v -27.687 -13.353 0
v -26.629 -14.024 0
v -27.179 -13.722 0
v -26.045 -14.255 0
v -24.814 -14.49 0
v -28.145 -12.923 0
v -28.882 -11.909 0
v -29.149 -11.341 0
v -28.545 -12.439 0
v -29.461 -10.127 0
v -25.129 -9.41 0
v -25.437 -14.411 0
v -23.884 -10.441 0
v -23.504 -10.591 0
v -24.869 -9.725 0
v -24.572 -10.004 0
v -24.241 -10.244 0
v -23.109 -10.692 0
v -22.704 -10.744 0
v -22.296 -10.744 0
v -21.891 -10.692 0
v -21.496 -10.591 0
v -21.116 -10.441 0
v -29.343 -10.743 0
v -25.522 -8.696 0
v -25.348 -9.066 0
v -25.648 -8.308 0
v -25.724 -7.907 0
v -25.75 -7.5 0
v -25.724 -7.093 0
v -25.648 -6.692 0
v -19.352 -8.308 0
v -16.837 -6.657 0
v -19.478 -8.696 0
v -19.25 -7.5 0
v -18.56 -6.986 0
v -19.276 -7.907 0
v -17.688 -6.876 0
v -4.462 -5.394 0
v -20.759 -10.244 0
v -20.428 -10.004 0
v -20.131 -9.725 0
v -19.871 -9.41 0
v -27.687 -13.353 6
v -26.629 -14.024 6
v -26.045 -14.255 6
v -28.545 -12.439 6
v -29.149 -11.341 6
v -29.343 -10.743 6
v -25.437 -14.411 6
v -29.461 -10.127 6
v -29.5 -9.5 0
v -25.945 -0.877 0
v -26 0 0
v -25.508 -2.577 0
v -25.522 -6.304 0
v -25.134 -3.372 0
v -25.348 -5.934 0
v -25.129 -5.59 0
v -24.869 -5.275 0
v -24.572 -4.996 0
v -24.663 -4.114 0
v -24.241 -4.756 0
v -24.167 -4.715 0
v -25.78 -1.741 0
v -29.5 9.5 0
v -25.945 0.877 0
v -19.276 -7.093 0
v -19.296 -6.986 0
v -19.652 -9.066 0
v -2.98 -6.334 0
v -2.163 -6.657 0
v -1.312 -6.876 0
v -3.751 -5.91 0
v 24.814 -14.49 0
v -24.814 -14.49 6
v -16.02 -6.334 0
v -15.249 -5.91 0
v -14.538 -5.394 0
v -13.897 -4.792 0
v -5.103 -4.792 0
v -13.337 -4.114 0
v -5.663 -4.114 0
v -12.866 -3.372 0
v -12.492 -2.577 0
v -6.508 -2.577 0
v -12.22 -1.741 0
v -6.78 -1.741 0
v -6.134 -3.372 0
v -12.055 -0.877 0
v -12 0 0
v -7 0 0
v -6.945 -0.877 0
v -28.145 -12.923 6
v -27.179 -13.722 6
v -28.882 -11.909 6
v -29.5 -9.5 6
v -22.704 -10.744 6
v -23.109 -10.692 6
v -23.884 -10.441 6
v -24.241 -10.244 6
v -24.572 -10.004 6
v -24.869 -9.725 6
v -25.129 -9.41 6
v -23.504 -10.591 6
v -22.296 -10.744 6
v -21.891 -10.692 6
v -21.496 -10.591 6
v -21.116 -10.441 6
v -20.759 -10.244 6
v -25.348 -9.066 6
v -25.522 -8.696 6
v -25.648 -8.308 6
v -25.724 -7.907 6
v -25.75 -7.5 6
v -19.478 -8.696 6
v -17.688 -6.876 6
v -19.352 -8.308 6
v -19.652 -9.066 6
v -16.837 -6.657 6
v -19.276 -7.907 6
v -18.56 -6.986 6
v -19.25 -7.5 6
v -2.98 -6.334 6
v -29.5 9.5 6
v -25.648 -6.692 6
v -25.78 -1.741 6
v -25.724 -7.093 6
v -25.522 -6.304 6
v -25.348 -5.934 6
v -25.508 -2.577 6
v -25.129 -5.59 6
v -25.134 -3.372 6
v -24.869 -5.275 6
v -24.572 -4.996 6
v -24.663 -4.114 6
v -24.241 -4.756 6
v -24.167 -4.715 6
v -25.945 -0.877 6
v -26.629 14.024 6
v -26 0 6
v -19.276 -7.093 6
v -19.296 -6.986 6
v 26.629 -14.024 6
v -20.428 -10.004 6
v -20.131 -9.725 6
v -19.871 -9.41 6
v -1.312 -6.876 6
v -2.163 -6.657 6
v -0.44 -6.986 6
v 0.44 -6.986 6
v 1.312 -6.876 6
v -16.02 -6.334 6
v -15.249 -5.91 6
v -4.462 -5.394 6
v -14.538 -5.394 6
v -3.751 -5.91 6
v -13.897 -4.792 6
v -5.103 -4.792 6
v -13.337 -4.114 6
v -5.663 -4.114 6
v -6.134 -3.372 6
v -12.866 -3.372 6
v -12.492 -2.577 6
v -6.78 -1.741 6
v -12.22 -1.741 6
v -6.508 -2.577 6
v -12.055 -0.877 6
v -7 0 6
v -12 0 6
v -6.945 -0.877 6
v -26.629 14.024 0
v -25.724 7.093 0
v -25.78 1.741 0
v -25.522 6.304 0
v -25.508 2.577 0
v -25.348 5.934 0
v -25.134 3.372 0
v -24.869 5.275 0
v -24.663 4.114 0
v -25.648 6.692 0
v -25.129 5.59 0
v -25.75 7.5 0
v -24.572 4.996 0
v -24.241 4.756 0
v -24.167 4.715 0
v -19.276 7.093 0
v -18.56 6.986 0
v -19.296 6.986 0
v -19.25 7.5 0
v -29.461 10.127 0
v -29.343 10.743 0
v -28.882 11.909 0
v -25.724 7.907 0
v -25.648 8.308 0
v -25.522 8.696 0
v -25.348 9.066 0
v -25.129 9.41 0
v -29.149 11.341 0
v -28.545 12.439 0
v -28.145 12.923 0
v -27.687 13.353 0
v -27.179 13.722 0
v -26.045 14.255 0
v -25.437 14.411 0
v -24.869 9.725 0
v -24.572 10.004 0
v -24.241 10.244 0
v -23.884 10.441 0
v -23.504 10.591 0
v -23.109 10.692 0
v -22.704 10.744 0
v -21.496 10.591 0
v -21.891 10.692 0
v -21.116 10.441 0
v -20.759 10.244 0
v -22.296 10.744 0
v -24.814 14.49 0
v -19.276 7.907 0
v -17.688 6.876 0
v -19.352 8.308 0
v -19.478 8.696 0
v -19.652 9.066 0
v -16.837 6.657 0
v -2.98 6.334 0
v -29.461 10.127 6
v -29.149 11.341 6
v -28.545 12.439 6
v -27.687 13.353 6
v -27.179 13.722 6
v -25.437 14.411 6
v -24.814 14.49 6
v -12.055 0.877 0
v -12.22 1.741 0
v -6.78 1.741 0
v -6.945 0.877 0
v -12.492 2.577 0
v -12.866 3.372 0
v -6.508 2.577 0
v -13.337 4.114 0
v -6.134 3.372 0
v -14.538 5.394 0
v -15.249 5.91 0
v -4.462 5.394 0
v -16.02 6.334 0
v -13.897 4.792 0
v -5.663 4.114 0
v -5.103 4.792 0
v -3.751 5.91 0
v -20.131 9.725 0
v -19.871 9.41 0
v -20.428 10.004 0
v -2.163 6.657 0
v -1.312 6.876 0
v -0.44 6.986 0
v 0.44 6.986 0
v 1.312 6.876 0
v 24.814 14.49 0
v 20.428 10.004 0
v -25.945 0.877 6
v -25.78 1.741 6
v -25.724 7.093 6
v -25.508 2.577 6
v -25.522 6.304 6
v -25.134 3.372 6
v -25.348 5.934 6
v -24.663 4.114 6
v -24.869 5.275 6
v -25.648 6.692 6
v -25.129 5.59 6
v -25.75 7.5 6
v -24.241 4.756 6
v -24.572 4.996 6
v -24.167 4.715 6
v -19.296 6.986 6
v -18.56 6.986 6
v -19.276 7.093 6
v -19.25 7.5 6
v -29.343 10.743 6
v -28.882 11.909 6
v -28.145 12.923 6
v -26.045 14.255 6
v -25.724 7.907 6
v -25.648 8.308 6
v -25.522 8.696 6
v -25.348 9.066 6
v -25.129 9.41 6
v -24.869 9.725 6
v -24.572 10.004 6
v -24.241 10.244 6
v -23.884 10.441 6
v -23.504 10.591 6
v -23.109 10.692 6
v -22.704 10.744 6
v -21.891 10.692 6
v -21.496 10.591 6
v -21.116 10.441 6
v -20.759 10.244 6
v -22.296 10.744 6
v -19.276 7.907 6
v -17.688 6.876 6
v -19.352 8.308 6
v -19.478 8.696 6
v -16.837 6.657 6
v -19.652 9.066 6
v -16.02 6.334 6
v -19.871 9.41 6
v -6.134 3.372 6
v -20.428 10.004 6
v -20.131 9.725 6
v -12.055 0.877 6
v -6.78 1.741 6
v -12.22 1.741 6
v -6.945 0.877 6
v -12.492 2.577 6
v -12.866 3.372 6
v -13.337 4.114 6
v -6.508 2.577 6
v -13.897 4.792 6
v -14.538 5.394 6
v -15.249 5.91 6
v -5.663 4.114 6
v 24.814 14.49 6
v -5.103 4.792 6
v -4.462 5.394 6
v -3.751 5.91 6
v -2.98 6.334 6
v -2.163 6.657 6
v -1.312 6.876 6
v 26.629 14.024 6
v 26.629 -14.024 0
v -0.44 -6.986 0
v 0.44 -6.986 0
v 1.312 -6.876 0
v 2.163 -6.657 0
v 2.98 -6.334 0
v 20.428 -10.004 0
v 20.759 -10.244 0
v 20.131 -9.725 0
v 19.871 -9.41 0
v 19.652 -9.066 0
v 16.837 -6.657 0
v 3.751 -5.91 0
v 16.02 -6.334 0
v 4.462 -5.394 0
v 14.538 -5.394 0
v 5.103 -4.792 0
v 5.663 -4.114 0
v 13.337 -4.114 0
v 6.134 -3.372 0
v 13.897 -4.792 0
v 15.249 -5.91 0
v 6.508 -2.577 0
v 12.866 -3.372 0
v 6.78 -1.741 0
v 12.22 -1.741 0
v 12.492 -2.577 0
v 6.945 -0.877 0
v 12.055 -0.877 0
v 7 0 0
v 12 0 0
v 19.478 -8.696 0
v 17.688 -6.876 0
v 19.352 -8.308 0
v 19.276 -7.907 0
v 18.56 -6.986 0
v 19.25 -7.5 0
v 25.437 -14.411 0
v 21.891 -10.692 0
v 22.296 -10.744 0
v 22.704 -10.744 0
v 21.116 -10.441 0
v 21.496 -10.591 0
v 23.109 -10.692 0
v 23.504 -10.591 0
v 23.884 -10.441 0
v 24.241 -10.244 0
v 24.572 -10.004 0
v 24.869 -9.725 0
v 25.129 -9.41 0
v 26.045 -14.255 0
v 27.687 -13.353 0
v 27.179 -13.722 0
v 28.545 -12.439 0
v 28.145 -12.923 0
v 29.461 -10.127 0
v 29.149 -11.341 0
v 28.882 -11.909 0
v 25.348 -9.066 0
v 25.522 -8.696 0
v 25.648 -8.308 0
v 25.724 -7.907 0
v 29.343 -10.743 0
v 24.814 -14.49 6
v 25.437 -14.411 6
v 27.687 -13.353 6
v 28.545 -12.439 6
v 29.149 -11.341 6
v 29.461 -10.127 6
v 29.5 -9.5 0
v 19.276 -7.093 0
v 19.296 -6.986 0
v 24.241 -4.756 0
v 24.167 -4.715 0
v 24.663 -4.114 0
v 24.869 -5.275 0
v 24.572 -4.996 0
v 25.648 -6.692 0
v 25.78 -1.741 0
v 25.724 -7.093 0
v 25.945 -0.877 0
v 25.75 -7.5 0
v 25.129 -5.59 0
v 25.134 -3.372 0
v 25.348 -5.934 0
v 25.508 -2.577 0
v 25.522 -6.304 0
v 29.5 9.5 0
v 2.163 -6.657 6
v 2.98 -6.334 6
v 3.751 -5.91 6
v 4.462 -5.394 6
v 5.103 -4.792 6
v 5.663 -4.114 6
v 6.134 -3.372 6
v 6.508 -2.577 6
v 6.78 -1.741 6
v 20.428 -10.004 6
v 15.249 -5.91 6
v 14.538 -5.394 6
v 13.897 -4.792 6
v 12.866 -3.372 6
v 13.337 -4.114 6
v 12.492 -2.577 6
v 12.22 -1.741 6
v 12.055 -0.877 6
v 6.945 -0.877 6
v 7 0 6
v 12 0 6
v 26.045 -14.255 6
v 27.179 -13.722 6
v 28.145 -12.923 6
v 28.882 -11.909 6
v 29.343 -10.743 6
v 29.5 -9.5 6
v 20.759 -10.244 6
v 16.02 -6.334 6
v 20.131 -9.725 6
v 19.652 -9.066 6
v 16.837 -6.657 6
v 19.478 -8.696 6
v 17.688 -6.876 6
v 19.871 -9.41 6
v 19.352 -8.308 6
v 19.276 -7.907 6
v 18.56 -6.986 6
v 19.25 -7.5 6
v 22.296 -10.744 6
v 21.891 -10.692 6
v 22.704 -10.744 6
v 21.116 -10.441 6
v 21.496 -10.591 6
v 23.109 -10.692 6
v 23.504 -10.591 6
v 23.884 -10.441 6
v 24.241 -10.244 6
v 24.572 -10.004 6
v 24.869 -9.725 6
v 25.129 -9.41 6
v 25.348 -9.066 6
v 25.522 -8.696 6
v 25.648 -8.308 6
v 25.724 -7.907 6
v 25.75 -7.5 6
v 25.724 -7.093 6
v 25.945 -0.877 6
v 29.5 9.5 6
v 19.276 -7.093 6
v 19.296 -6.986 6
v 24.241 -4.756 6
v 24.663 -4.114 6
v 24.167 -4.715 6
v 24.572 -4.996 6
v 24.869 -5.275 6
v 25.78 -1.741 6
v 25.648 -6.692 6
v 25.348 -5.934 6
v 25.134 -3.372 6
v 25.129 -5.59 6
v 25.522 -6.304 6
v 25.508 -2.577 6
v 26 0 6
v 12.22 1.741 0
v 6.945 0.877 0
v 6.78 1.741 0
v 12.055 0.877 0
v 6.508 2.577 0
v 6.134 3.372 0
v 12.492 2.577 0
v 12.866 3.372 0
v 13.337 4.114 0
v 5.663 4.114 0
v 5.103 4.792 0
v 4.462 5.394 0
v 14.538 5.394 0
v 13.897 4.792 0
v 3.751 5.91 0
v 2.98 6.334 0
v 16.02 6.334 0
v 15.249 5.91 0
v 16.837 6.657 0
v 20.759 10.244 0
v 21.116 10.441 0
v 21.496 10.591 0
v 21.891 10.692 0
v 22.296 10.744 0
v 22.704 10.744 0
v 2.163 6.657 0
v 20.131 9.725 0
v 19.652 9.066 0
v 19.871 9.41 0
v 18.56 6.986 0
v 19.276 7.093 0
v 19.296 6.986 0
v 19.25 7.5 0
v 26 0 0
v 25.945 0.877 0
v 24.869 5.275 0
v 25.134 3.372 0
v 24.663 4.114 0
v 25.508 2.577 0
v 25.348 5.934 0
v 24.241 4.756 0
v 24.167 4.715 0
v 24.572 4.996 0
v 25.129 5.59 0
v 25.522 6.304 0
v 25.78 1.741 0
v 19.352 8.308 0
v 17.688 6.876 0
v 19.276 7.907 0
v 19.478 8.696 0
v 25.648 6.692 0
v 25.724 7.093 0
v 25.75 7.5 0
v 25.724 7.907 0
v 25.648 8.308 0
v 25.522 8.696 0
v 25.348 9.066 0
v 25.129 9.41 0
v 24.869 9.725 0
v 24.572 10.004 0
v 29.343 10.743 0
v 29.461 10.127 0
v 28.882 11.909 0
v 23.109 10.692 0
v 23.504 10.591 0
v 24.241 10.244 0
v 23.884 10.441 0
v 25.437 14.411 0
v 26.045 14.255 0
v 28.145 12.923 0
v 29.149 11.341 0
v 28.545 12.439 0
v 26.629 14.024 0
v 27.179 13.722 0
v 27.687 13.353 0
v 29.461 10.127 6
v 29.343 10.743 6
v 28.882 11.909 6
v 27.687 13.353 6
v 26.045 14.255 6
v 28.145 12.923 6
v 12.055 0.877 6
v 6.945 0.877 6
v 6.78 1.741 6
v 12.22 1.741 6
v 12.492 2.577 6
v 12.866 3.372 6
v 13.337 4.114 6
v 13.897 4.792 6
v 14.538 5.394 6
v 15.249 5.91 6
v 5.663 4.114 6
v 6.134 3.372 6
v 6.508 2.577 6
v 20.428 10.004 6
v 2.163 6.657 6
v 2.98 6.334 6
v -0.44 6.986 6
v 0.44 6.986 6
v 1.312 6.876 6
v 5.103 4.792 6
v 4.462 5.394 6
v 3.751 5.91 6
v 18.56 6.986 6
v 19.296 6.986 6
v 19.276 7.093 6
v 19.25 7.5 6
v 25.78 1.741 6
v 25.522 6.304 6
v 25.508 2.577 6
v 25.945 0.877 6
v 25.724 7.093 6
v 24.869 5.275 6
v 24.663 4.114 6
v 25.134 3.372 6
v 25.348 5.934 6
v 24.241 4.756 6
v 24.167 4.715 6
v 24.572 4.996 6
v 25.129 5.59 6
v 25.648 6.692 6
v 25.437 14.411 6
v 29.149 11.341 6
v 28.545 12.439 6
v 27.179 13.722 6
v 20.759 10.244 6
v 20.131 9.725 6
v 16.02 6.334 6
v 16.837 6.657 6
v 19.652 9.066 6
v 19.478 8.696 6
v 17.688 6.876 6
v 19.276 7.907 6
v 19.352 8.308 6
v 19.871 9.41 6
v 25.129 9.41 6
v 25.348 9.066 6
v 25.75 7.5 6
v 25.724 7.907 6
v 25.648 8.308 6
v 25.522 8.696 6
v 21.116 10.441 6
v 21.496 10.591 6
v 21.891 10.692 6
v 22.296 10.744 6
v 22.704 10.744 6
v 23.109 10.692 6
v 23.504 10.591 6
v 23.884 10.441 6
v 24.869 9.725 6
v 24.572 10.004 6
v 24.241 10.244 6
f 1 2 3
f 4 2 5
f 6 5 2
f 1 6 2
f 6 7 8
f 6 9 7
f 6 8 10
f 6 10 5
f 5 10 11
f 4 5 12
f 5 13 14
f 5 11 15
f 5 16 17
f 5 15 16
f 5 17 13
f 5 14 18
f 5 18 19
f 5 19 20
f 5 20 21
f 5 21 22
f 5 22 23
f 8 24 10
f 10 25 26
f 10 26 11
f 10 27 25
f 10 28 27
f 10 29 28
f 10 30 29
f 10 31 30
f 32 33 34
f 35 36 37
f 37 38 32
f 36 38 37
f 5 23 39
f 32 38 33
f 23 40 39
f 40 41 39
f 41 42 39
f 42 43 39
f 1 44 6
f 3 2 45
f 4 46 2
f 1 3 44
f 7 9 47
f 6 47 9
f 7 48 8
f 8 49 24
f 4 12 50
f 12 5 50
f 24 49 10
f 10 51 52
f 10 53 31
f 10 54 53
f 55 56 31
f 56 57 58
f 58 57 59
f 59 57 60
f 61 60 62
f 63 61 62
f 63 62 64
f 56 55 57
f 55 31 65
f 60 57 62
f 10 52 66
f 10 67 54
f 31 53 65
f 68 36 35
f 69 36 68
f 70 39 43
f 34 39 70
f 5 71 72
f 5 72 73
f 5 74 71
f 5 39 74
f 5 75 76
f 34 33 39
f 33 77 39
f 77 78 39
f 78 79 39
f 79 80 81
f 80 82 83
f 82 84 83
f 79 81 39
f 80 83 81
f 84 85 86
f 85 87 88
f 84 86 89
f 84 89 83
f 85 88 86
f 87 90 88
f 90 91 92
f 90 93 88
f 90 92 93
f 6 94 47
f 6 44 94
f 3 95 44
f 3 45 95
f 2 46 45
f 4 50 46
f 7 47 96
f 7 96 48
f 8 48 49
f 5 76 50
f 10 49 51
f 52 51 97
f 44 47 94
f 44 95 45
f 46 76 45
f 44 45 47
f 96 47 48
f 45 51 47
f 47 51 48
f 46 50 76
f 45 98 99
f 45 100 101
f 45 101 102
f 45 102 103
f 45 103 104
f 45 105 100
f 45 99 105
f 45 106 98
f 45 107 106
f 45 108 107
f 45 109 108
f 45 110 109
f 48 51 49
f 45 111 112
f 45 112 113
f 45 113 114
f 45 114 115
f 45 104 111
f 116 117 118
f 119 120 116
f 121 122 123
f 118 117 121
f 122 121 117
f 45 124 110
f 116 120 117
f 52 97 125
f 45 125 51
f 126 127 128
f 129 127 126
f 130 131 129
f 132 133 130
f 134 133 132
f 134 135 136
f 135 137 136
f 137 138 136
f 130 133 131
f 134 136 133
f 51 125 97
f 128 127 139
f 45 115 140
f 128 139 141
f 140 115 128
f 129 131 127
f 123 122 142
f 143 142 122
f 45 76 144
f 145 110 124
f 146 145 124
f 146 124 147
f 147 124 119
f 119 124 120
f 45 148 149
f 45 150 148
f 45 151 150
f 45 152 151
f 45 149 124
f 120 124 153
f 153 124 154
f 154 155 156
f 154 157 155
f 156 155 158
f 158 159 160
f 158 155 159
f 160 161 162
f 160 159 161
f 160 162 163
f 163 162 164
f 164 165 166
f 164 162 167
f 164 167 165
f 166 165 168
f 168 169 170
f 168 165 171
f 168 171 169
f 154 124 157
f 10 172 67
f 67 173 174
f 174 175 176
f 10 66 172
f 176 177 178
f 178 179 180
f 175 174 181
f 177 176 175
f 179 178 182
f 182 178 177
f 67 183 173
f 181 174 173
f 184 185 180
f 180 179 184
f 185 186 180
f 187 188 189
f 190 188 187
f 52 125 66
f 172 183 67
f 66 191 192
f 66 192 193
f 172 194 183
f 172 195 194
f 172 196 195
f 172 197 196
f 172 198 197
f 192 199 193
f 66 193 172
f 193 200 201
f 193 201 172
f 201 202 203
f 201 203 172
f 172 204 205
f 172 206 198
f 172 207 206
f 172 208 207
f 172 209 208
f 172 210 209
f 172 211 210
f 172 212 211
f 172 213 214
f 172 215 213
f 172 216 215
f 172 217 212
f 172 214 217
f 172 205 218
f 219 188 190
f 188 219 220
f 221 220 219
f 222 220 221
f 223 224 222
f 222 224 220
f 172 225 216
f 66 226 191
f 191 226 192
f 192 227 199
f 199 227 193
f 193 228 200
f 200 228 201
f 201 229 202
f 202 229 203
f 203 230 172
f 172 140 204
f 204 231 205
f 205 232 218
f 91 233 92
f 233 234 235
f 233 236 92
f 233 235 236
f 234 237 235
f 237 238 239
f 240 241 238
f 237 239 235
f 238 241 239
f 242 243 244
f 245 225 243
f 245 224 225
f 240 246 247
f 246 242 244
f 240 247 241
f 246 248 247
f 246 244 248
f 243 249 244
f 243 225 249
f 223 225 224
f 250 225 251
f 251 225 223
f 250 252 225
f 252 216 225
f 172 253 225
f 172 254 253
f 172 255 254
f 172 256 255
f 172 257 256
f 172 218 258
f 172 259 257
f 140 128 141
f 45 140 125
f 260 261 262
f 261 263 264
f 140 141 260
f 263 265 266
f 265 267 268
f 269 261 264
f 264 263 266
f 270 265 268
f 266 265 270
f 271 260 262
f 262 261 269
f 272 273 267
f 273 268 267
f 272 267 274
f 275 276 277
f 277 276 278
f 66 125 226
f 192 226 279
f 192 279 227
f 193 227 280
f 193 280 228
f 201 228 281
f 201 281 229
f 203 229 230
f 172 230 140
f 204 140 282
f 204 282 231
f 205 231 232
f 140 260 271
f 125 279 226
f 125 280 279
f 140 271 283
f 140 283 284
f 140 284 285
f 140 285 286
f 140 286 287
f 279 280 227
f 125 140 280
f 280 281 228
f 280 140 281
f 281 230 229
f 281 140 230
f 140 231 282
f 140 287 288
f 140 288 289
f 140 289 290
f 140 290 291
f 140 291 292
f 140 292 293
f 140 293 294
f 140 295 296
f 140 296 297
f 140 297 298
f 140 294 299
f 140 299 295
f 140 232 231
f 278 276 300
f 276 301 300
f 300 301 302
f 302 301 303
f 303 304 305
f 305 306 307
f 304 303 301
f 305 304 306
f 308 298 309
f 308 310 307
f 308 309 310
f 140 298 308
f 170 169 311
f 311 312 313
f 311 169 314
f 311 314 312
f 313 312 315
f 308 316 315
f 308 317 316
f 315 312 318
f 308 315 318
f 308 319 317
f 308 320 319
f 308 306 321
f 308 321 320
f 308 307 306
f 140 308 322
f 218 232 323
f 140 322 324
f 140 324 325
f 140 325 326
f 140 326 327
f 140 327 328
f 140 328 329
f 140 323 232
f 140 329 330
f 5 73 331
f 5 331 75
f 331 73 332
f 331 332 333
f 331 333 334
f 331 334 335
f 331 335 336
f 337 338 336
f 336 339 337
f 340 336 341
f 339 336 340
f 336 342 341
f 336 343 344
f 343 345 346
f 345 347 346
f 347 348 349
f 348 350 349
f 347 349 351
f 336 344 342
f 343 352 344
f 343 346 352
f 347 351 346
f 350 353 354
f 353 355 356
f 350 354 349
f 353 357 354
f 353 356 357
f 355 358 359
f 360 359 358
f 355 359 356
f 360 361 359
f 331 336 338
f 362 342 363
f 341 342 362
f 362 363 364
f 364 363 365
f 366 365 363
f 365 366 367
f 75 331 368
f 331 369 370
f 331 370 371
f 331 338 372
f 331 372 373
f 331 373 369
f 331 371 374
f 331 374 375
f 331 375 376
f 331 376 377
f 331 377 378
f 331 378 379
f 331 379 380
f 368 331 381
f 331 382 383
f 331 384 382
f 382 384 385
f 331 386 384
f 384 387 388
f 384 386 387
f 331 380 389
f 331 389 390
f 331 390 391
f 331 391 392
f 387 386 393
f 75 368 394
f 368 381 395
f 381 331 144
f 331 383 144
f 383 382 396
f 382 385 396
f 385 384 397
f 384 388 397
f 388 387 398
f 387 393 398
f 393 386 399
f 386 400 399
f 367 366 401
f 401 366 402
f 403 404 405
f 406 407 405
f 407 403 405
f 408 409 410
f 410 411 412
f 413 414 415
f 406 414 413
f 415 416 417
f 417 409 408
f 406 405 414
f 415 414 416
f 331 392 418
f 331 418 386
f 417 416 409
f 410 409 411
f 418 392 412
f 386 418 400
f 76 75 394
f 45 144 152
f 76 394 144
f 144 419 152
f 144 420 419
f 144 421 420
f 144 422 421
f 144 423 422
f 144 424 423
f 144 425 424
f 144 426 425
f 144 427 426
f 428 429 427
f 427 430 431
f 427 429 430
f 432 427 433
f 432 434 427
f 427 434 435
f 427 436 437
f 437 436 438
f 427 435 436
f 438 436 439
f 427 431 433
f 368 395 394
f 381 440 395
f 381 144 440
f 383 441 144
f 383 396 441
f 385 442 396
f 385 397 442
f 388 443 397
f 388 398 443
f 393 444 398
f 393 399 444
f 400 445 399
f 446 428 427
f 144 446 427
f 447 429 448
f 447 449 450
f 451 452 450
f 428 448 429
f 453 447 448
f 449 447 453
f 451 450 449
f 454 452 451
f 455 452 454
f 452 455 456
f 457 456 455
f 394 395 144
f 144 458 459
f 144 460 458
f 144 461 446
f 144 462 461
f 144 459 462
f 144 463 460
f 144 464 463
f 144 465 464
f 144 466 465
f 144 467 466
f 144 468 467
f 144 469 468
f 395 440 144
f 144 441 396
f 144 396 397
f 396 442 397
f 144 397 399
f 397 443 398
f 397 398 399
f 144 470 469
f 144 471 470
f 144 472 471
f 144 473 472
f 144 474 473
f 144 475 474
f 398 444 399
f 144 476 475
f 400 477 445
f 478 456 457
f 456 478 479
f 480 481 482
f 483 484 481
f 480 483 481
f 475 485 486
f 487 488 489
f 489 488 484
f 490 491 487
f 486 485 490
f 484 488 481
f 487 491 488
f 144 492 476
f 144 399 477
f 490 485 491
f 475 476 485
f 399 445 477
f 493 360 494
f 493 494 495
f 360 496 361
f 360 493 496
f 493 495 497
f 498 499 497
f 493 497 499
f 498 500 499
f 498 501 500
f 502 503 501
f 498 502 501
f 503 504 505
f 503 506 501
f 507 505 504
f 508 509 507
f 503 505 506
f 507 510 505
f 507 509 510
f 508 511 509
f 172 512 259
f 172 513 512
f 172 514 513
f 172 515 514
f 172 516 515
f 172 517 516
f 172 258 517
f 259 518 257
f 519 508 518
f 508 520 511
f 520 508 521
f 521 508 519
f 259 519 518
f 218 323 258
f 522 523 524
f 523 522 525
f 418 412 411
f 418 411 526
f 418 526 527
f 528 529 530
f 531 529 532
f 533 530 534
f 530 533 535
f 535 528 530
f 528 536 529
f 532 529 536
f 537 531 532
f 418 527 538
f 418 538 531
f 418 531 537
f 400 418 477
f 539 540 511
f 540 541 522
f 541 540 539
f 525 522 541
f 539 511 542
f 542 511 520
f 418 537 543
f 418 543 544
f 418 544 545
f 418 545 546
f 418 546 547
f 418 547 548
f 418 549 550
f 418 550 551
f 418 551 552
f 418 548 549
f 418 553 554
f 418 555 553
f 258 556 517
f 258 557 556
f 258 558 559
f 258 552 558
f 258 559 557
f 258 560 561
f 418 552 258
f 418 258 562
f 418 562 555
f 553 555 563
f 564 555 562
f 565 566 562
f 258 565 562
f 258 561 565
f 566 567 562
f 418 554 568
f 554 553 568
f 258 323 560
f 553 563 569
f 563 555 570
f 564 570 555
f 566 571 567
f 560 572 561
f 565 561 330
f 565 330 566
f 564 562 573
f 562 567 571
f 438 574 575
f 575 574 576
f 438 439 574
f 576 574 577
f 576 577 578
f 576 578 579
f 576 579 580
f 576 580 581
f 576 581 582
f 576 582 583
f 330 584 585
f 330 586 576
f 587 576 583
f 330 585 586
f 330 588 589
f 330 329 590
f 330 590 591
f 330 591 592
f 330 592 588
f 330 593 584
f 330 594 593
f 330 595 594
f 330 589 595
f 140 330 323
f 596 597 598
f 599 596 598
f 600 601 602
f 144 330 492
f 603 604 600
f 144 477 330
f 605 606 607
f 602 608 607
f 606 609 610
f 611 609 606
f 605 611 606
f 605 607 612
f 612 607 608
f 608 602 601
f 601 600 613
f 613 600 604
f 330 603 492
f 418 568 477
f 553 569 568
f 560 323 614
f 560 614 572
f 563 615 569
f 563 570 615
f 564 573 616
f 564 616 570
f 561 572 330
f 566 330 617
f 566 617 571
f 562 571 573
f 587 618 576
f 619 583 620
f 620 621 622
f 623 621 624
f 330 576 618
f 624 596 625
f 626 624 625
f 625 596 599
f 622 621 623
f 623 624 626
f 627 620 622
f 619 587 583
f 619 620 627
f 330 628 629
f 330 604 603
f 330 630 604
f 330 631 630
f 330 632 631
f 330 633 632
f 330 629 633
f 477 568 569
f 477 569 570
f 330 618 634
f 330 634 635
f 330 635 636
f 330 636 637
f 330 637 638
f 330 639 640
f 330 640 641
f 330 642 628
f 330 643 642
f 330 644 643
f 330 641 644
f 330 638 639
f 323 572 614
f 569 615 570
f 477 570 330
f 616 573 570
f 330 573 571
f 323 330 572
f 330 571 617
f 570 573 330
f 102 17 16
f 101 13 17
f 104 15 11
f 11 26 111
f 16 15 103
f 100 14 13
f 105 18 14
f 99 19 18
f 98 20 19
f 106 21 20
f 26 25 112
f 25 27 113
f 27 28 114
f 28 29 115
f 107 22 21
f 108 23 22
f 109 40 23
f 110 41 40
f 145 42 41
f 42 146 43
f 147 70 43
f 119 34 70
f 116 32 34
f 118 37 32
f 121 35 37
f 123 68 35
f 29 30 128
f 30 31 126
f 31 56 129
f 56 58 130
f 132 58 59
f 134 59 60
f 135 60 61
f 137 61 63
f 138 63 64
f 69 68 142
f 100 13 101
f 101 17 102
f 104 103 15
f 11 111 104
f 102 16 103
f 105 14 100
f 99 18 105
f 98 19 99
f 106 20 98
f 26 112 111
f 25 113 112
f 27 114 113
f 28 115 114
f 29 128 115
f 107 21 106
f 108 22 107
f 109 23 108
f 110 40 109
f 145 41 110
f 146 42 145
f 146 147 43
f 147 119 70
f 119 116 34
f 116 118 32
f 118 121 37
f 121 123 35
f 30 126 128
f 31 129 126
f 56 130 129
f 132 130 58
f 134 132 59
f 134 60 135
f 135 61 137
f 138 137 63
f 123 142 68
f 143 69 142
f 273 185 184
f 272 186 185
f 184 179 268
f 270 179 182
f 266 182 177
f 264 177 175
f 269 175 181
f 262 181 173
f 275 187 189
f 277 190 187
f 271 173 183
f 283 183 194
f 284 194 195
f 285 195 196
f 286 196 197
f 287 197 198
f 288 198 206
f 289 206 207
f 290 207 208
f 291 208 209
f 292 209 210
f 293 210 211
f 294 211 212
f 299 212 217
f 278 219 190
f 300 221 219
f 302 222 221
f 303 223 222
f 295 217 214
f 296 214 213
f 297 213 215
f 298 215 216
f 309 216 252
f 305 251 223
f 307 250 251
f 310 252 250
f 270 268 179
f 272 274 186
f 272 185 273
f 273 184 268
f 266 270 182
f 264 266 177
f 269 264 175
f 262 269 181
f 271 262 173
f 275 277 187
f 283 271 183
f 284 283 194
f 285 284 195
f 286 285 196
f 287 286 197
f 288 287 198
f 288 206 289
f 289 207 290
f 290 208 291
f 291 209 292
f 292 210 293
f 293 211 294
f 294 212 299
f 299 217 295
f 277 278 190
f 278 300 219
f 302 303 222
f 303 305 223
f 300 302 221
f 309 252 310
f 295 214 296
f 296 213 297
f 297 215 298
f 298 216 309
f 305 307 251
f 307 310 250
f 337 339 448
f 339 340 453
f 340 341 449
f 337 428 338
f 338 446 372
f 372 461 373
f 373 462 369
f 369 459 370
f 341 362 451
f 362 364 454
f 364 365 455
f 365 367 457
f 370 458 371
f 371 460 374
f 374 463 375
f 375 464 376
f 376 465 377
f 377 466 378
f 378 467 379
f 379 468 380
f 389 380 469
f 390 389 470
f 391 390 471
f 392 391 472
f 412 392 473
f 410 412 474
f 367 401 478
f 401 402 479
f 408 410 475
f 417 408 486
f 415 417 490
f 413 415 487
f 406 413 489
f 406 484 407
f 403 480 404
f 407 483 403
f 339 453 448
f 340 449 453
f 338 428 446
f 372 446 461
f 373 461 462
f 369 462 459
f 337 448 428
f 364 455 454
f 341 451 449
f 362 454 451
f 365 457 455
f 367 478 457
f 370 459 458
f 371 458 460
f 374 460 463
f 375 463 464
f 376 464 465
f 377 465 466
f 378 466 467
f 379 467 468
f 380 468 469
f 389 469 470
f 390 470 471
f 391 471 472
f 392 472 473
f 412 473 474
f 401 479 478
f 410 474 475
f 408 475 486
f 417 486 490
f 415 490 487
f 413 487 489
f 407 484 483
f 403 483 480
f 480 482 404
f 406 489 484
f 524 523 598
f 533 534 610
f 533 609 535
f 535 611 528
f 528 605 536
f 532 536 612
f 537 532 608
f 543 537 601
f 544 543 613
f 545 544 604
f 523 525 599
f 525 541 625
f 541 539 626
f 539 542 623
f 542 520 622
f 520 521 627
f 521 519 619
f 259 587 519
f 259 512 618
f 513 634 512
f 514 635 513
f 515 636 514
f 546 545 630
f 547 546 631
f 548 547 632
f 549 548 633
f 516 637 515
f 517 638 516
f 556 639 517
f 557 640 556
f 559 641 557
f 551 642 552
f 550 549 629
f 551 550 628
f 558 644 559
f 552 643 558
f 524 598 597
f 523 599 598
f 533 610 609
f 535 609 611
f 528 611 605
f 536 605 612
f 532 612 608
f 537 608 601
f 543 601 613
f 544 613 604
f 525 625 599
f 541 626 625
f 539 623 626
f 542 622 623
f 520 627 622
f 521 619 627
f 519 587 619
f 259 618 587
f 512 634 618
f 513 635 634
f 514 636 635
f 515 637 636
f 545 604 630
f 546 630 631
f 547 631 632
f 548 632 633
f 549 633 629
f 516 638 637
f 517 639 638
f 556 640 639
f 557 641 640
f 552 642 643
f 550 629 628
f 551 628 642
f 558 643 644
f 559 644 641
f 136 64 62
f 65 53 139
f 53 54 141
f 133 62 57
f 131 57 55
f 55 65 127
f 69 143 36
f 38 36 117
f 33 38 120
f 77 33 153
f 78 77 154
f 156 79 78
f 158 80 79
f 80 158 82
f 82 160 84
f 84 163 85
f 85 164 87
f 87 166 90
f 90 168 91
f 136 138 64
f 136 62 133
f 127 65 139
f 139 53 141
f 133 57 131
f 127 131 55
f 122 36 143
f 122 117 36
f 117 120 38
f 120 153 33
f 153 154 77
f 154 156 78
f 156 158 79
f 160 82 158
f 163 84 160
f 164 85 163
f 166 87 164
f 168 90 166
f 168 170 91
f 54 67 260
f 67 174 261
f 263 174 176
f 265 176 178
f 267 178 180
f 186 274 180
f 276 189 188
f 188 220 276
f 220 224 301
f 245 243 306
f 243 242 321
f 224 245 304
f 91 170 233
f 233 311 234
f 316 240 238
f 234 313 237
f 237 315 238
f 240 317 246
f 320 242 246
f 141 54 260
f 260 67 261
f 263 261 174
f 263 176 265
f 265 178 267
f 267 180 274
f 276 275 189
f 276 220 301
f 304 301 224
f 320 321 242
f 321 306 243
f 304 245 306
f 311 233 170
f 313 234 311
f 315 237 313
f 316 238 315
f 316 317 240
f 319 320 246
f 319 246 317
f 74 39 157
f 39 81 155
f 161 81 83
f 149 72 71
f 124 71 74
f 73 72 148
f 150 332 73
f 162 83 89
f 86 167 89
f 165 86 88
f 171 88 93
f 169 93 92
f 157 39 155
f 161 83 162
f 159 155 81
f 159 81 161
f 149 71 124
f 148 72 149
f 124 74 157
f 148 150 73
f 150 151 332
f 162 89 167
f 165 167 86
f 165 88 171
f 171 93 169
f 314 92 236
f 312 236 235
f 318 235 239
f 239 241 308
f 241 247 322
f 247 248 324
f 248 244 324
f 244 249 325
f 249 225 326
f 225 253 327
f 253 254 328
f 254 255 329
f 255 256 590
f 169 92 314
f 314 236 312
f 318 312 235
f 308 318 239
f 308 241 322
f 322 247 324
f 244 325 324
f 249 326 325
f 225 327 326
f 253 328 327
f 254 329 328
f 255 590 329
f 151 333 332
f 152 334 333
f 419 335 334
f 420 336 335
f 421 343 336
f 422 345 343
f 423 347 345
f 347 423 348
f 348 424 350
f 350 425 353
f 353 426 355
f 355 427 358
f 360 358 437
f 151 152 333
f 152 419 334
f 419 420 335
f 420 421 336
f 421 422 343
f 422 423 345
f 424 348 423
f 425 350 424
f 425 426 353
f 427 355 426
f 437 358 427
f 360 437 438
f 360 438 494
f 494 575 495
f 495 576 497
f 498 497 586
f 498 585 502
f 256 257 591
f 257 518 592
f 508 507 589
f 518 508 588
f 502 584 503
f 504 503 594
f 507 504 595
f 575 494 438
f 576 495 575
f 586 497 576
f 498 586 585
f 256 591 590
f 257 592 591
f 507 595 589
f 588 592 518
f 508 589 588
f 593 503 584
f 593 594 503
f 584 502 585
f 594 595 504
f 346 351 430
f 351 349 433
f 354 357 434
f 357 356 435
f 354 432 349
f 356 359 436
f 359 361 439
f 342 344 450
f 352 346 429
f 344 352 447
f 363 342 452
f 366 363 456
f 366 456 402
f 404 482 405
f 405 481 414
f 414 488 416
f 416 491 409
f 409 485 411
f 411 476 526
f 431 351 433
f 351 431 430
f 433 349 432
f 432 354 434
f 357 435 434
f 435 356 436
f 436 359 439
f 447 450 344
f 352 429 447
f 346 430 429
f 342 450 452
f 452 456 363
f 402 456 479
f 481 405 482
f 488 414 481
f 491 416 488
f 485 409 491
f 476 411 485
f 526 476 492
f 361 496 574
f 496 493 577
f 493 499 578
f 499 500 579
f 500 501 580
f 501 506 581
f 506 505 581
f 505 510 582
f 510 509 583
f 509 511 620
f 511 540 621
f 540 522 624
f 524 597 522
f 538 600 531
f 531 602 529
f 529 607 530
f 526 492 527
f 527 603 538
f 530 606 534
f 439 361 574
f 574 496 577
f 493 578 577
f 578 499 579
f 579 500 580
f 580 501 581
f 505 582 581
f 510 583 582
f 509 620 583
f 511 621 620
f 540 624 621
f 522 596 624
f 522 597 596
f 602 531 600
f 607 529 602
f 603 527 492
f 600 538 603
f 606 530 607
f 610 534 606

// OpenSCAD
$fn = 50;

difference() {
	union() {
		hull() {
			translate(v = [-24.5, 9.5, 0]) {
				cylinder(h = 6, r = 5);
			}
			translate(v = [24.5, 9.5, 0]) {
				cylinder(h = 6, r = 5);
			}
			translate(v = [-24.5, -9.5, 0]) {
				cylinder(h = 6, r = 5);
			}
			translate(v = [24.5, -9.5, 0]) {
				cylinder(h = 6, r = 5);
			}
		}
	}
	union() {
		translate(v = [-22.5, -7.5, -100.0]) {
			cylinder(h = 200, r = 3.25);
		}
		translate(v = [-22.5, 7.5, -100.0]) {
			cylinder(h = 200, r = 3.25);
		}
		translate(v = [22.5, -7.5, -100.0]) {
			cylinder(h = 200, r = 3.25);
		}
		translate(v = [22.5, 7.5, -100.0]) {
			cylinder(h = 200, r = 3.25);
		}
		translate(v = [-22.5, -7.5, -100.0]) {
			cylinder(h = 200, r = 1.8);
		}
		translate(v = [-22.5, 7.5, -100.0]) {
			cylinder(h = 200, r = 1.8);
		}
		translate(v = [22.5, -7.5, -100.0]) {
			cylinder(h = 200, r = 1.8);
		}
		translate(v = [22.5, 7.5, -100.0]) {
			cylinder(h = 200, r = 1.8);
		}
		translate(v = [-19.0, 0, 0.0]) {
			cylinder(h = 6, r = 7.0);
		}
		cylinder(h = 6, r = 7.0);
		translate(v = [19.0, 0, 0.0]) {
			cylinder(h = 6, r = 7.0);
		}
	}
}
